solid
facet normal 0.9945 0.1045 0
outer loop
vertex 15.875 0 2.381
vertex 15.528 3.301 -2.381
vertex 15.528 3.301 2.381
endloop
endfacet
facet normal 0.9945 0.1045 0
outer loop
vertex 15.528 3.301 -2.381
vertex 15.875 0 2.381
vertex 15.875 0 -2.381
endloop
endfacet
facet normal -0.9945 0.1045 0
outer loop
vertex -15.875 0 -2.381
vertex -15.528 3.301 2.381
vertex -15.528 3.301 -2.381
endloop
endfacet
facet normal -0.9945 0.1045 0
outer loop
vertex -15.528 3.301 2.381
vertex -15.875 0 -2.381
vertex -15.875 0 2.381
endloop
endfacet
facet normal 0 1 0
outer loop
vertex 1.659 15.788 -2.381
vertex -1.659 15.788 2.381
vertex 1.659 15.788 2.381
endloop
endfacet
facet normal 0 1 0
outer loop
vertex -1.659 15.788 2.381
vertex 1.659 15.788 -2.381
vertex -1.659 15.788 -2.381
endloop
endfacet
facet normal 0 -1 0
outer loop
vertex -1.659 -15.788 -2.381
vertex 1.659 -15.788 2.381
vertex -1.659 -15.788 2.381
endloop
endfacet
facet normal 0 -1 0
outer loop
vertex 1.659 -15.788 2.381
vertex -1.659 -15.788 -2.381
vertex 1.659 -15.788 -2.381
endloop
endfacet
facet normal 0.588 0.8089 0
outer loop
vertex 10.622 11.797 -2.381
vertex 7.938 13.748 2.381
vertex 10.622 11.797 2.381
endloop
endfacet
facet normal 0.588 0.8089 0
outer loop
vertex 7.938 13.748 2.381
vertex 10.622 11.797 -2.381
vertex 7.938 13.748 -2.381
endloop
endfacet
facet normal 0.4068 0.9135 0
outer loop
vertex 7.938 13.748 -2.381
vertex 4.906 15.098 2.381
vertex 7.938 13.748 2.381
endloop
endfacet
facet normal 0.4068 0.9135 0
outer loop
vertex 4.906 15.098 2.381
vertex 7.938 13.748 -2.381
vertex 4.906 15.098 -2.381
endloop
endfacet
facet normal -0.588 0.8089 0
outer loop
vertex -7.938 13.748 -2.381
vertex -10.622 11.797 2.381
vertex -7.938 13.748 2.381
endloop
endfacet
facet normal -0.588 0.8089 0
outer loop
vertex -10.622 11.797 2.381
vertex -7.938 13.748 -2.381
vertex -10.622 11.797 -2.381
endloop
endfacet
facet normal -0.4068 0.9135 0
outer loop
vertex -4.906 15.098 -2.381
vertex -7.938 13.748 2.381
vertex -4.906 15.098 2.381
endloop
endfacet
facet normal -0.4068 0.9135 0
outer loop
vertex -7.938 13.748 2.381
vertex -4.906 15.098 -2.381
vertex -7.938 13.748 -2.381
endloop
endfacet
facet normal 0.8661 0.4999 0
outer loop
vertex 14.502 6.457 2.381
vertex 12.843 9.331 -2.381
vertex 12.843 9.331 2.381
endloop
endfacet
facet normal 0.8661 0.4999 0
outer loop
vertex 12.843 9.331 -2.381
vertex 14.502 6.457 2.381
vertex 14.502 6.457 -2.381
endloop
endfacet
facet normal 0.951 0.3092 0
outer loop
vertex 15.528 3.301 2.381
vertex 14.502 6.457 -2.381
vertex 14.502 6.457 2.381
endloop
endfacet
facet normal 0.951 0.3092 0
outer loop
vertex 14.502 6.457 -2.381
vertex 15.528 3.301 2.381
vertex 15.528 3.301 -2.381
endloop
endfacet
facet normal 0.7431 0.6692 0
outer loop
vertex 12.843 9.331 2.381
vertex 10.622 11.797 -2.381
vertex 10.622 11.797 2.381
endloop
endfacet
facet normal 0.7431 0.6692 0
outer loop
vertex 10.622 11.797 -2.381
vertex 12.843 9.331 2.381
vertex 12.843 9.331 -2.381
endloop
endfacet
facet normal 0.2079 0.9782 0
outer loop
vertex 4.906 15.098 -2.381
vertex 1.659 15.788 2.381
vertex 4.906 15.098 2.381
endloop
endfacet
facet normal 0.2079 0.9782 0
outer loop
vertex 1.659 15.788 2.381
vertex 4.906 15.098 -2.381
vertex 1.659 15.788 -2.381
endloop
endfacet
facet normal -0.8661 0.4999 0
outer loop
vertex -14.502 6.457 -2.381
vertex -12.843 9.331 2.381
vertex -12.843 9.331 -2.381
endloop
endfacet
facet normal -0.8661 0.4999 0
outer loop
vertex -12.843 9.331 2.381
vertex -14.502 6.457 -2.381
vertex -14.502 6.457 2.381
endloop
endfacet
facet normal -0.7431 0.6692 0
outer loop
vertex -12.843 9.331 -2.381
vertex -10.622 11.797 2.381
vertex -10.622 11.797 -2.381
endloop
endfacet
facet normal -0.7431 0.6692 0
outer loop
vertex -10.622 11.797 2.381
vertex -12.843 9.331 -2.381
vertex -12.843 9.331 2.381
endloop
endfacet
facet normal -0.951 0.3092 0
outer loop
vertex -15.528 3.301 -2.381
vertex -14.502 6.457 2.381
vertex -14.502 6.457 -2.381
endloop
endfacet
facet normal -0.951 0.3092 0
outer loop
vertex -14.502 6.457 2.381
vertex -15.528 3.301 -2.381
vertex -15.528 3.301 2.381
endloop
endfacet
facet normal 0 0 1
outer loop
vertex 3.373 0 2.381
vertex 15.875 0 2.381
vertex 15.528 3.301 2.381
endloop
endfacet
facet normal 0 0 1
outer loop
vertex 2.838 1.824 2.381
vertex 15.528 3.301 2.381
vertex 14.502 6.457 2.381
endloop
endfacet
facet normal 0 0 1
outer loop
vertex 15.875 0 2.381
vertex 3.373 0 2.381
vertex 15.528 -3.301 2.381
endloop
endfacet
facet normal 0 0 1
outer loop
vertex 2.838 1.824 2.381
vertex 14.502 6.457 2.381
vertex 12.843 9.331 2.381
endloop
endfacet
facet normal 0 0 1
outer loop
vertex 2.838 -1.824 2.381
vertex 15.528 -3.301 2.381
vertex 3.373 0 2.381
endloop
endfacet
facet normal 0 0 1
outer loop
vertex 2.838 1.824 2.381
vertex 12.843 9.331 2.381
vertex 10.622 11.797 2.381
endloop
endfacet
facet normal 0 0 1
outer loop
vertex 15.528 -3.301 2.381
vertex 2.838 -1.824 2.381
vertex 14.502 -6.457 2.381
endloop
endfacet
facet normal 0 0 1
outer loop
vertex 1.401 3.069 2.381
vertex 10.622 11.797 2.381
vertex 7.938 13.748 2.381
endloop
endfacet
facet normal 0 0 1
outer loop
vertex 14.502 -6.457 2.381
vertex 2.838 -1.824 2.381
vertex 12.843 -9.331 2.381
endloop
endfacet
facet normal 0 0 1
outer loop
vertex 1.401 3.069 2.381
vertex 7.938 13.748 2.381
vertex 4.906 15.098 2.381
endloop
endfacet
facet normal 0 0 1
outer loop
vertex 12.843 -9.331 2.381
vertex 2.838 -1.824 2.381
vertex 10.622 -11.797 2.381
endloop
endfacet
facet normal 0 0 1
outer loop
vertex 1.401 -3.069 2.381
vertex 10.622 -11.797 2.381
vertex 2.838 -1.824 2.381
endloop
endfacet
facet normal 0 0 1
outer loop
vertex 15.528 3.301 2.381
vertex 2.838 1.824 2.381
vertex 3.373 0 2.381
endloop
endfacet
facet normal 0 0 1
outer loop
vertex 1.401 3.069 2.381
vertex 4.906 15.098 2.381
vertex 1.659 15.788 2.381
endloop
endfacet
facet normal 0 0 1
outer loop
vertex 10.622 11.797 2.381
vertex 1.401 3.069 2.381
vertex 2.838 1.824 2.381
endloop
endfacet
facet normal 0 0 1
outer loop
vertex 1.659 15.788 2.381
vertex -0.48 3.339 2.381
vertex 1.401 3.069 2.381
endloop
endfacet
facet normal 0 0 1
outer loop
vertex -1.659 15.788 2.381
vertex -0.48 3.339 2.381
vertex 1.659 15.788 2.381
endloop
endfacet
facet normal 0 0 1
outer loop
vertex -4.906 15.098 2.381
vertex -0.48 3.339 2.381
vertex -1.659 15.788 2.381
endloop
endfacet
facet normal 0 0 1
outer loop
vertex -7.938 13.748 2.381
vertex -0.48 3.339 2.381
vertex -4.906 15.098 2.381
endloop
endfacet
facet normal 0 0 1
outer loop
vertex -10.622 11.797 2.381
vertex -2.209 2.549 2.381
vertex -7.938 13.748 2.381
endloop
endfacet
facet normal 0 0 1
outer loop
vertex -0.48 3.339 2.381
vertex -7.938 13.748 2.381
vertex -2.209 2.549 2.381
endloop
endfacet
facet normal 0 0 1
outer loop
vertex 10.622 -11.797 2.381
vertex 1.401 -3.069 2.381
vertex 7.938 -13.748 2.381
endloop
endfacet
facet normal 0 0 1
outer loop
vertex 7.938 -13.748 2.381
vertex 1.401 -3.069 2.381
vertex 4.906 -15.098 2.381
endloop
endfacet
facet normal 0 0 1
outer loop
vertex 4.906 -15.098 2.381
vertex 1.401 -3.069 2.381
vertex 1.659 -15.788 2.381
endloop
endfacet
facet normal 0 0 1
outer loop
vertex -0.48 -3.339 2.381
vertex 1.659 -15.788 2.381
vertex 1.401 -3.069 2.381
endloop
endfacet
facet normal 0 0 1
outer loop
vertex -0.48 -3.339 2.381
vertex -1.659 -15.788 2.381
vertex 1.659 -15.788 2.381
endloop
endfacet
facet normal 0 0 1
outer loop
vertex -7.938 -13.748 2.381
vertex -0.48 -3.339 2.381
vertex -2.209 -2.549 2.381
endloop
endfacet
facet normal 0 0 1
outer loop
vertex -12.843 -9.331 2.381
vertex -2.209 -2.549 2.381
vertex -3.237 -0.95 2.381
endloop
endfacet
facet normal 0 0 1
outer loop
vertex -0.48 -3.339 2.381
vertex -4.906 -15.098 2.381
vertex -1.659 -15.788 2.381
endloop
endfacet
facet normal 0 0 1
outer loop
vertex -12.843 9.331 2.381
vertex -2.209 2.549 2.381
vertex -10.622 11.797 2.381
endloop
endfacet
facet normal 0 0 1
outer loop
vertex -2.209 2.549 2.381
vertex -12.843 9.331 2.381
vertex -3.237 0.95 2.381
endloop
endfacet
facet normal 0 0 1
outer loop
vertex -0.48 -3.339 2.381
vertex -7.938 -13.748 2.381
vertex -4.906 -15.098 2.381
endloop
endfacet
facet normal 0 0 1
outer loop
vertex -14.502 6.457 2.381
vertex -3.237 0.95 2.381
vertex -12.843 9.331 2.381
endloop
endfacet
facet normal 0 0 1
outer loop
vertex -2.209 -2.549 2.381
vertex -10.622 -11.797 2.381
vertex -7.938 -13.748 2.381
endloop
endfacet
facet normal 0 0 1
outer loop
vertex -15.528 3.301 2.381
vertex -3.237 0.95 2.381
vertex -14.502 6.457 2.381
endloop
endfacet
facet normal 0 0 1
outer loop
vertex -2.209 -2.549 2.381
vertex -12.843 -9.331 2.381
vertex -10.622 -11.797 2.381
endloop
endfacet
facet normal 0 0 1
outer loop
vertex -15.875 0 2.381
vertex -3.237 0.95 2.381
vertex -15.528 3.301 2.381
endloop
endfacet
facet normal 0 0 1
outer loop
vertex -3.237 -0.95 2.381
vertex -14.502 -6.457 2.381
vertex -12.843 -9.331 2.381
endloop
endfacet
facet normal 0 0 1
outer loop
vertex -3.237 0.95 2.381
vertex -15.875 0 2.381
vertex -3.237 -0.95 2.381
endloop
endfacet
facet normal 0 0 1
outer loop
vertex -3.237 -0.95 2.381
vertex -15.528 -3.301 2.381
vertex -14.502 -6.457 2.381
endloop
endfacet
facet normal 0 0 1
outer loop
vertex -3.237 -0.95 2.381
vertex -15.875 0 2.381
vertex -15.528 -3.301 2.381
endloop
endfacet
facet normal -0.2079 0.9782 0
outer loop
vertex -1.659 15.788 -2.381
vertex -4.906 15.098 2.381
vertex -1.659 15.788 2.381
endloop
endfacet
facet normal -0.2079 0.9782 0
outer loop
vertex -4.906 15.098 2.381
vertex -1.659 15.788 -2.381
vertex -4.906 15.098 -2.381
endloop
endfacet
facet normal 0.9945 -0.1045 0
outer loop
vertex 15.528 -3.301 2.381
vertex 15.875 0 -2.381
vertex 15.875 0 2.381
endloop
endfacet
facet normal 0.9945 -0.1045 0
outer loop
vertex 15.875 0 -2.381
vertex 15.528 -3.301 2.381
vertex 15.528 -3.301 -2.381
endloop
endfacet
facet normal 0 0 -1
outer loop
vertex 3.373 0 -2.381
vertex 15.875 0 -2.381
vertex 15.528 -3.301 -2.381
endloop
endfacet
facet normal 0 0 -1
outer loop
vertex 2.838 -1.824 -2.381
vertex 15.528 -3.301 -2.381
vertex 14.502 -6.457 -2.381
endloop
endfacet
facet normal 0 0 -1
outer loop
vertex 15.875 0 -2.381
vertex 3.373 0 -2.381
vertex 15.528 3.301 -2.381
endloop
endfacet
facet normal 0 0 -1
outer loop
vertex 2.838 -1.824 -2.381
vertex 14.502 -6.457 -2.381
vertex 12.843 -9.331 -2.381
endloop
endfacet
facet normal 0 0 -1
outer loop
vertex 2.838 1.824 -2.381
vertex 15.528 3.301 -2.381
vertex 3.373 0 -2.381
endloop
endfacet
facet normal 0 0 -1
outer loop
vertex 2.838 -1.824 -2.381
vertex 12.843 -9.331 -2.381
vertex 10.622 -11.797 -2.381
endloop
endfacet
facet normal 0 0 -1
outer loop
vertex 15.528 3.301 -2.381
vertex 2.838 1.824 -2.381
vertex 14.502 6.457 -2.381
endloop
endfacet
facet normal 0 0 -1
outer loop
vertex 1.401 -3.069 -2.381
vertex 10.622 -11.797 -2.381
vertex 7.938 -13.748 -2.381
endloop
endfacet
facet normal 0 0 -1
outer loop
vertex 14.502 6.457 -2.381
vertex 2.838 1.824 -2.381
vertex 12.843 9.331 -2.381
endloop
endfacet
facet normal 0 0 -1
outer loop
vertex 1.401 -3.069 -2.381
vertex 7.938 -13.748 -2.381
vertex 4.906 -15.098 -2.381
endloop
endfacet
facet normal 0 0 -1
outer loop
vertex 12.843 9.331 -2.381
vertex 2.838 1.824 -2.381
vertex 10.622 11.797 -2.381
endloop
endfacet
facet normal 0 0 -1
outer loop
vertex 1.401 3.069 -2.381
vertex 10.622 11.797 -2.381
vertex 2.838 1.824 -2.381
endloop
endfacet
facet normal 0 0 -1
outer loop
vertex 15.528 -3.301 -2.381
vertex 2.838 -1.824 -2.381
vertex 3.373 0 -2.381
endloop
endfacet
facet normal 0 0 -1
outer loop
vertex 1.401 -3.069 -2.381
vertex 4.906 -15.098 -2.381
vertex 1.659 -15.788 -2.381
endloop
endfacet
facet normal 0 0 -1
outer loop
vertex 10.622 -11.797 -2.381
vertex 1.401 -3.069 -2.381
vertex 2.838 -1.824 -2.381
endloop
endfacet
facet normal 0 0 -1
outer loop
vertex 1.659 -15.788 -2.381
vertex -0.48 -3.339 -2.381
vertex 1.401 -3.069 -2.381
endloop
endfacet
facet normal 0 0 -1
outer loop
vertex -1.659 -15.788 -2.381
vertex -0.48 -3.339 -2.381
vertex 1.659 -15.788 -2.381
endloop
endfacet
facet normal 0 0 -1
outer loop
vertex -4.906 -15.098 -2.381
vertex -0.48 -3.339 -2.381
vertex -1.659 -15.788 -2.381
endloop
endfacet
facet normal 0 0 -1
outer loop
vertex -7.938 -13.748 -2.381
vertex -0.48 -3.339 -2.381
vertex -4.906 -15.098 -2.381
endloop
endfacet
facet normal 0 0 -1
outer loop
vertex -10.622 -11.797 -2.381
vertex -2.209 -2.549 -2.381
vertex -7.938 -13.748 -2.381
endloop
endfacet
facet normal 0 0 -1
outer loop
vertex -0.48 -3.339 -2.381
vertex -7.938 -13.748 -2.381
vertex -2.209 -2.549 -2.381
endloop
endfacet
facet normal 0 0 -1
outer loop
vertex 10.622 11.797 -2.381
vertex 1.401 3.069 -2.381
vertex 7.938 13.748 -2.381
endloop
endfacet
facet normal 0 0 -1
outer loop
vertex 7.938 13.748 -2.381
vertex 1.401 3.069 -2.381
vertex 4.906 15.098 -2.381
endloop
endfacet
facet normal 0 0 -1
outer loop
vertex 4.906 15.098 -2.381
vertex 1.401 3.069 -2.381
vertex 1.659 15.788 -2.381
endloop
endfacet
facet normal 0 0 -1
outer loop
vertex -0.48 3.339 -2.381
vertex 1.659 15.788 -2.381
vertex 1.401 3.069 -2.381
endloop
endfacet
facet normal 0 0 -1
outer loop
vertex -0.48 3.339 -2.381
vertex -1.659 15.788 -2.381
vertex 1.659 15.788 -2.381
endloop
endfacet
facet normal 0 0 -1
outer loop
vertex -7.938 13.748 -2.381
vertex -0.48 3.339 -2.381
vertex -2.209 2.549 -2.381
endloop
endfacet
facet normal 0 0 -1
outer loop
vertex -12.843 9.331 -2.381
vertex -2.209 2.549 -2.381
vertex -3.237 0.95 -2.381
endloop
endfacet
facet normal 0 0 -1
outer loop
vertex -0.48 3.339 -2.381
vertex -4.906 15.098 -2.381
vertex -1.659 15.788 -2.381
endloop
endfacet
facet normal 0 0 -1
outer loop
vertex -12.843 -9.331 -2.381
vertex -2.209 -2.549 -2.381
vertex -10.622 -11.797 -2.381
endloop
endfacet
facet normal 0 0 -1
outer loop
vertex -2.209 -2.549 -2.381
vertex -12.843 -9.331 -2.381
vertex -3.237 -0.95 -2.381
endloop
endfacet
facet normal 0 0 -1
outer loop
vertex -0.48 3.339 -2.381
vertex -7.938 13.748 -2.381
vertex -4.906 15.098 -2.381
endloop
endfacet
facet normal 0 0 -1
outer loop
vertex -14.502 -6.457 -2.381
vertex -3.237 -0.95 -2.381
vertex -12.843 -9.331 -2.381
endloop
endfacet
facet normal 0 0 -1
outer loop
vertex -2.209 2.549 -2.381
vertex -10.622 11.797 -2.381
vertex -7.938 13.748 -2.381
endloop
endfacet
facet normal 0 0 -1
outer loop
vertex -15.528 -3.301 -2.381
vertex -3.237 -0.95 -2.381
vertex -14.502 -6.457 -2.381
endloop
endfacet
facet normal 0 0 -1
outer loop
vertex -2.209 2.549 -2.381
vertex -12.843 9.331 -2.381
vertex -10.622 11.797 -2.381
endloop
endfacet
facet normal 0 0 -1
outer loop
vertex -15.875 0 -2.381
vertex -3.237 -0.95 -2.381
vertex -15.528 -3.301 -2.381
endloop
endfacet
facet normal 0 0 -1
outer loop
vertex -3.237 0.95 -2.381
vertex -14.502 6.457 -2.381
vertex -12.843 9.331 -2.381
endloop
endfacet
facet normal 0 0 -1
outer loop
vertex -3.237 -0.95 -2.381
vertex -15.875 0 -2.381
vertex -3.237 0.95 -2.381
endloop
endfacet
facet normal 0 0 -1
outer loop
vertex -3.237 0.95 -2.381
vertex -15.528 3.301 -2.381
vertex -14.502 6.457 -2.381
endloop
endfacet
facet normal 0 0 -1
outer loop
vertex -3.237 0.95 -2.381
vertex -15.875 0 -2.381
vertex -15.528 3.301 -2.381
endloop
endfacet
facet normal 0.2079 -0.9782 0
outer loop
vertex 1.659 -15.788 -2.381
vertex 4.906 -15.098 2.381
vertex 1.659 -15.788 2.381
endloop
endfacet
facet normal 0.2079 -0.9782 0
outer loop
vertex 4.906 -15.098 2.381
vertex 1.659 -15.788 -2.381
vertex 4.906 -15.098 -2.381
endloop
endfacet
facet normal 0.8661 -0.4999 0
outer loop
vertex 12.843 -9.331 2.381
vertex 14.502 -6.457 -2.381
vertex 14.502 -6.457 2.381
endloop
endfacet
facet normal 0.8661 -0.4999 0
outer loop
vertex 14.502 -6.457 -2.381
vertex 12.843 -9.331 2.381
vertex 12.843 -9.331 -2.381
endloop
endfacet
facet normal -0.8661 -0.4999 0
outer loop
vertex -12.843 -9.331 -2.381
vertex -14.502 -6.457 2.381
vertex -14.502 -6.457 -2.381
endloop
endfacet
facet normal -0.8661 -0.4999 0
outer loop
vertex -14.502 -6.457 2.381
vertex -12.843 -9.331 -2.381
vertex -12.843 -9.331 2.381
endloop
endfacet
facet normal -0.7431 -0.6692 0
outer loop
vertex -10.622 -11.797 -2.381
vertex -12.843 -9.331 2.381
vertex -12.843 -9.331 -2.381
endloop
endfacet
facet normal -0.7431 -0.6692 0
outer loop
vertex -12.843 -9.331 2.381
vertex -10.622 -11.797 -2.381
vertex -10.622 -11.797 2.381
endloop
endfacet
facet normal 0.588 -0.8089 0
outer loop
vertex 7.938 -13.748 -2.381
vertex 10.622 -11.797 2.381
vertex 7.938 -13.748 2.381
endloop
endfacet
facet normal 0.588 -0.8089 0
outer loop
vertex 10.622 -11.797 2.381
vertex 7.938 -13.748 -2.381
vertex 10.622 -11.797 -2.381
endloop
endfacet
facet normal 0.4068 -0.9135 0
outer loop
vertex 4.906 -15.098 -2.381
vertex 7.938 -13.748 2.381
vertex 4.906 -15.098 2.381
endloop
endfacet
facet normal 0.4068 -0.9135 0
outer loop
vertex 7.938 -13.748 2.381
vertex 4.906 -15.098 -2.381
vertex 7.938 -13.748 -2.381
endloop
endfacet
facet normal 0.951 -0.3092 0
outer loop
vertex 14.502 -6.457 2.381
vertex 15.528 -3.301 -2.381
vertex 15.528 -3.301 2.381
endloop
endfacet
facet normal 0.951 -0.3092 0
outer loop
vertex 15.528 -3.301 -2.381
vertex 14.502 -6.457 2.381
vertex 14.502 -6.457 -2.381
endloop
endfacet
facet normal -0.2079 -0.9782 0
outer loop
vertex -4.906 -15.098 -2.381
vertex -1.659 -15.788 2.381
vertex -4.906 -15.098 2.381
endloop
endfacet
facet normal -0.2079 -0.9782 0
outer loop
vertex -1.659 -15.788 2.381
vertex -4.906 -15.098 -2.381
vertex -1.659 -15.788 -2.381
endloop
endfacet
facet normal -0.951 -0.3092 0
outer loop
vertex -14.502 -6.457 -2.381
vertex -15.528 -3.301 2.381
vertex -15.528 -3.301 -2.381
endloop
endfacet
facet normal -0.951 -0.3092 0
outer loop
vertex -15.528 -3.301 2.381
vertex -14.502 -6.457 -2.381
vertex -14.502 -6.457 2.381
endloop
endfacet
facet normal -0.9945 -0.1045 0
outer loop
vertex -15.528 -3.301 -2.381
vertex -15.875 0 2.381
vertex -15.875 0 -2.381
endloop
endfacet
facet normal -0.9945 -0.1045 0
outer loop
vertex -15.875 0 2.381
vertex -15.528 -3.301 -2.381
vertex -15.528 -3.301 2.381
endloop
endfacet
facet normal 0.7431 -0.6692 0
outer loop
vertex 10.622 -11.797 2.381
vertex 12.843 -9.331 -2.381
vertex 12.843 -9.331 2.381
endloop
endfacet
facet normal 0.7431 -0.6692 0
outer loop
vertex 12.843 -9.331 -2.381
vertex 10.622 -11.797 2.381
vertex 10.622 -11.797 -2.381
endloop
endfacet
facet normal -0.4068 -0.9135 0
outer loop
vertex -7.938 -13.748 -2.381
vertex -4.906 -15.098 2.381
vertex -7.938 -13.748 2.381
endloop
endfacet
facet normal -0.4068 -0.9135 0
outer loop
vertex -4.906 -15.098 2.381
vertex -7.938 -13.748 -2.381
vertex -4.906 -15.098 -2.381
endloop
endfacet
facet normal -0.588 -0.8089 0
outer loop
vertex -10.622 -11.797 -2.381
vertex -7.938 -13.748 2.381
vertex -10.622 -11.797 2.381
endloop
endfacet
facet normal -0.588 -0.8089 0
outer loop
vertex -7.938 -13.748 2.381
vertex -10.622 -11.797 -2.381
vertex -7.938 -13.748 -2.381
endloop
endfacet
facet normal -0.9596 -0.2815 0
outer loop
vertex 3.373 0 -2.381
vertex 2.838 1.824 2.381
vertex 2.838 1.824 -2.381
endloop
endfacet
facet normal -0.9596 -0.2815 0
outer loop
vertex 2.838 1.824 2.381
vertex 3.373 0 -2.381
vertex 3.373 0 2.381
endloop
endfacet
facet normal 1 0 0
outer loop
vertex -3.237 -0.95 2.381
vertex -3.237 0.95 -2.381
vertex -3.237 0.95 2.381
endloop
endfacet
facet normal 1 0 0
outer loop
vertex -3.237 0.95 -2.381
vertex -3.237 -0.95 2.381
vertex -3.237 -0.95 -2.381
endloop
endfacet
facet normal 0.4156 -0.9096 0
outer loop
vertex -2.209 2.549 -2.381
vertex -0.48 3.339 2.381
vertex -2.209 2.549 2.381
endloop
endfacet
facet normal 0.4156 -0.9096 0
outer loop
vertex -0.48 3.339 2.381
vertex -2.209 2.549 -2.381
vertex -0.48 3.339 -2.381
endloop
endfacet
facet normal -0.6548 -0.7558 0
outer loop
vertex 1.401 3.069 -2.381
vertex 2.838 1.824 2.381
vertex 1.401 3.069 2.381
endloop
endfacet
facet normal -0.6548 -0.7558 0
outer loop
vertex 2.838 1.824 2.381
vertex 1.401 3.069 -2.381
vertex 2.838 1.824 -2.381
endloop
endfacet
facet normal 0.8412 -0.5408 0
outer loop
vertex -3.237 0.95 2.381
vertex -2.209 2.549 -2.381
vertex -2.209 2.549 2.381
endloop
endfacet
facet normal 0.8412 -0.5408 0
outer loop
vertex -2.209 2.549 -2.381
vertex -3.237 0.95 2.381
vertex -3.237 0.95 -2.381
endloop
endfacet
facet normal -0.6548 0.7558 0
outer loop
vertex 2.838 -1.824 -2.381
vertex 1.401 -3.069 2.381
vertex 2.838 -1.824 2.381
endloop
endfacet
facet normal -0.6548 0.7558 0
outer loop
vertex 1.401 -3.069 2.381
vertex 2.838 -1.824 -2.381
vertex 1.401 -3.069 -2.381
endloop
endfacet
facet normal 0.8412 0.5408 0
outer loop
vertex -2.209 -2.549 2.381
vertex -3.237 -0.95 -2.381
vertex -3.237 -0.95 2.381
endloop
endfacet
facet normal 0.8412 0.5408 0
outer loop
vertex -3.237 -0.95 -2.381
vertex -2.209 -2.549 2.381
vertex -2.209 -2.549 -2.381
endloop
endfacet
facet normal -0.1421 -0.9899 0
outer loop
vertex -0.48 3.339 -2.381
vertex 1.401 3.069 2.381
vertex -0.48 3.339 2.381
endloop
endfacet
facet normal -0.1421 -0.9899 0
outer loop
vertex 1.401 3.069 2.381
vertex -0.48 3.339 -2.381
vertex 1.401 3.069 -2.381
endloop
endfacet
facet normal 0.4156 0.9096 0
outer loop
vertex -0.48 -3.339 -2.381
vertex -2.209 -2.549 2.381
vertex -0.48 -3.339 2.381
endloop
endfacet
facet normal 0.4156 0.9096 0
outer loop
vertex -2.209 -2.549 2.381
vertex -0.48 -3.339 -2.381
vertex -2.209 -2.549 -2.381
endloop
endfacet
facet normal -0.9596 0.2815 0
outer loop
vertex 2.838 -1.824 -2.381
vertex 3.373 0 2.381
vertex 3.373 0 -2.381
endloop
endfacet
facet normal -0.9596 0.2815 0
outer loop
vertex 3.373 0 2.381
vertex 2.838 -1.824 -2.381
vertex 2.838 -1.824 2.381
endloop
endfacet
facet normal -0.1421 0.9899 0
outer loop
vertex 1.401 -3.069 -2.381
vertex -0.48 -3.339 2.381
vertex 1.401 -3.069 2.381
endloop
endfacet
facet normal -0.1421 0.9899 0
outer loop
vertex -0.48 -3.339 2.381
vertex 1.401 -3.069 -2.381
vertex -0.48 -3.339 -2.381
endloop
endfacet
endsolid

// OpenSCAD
inch=25.4;

module washer (od=(1+1/4)*inch,
	       id=17/64*inch,
	       thickness=3/16*inch) {
     difference() {
	  cylinder(d=od, h=thickness, center=true);
	  cylinder(d=id, h=thickness*2, center=true);
     }
}

washer();
